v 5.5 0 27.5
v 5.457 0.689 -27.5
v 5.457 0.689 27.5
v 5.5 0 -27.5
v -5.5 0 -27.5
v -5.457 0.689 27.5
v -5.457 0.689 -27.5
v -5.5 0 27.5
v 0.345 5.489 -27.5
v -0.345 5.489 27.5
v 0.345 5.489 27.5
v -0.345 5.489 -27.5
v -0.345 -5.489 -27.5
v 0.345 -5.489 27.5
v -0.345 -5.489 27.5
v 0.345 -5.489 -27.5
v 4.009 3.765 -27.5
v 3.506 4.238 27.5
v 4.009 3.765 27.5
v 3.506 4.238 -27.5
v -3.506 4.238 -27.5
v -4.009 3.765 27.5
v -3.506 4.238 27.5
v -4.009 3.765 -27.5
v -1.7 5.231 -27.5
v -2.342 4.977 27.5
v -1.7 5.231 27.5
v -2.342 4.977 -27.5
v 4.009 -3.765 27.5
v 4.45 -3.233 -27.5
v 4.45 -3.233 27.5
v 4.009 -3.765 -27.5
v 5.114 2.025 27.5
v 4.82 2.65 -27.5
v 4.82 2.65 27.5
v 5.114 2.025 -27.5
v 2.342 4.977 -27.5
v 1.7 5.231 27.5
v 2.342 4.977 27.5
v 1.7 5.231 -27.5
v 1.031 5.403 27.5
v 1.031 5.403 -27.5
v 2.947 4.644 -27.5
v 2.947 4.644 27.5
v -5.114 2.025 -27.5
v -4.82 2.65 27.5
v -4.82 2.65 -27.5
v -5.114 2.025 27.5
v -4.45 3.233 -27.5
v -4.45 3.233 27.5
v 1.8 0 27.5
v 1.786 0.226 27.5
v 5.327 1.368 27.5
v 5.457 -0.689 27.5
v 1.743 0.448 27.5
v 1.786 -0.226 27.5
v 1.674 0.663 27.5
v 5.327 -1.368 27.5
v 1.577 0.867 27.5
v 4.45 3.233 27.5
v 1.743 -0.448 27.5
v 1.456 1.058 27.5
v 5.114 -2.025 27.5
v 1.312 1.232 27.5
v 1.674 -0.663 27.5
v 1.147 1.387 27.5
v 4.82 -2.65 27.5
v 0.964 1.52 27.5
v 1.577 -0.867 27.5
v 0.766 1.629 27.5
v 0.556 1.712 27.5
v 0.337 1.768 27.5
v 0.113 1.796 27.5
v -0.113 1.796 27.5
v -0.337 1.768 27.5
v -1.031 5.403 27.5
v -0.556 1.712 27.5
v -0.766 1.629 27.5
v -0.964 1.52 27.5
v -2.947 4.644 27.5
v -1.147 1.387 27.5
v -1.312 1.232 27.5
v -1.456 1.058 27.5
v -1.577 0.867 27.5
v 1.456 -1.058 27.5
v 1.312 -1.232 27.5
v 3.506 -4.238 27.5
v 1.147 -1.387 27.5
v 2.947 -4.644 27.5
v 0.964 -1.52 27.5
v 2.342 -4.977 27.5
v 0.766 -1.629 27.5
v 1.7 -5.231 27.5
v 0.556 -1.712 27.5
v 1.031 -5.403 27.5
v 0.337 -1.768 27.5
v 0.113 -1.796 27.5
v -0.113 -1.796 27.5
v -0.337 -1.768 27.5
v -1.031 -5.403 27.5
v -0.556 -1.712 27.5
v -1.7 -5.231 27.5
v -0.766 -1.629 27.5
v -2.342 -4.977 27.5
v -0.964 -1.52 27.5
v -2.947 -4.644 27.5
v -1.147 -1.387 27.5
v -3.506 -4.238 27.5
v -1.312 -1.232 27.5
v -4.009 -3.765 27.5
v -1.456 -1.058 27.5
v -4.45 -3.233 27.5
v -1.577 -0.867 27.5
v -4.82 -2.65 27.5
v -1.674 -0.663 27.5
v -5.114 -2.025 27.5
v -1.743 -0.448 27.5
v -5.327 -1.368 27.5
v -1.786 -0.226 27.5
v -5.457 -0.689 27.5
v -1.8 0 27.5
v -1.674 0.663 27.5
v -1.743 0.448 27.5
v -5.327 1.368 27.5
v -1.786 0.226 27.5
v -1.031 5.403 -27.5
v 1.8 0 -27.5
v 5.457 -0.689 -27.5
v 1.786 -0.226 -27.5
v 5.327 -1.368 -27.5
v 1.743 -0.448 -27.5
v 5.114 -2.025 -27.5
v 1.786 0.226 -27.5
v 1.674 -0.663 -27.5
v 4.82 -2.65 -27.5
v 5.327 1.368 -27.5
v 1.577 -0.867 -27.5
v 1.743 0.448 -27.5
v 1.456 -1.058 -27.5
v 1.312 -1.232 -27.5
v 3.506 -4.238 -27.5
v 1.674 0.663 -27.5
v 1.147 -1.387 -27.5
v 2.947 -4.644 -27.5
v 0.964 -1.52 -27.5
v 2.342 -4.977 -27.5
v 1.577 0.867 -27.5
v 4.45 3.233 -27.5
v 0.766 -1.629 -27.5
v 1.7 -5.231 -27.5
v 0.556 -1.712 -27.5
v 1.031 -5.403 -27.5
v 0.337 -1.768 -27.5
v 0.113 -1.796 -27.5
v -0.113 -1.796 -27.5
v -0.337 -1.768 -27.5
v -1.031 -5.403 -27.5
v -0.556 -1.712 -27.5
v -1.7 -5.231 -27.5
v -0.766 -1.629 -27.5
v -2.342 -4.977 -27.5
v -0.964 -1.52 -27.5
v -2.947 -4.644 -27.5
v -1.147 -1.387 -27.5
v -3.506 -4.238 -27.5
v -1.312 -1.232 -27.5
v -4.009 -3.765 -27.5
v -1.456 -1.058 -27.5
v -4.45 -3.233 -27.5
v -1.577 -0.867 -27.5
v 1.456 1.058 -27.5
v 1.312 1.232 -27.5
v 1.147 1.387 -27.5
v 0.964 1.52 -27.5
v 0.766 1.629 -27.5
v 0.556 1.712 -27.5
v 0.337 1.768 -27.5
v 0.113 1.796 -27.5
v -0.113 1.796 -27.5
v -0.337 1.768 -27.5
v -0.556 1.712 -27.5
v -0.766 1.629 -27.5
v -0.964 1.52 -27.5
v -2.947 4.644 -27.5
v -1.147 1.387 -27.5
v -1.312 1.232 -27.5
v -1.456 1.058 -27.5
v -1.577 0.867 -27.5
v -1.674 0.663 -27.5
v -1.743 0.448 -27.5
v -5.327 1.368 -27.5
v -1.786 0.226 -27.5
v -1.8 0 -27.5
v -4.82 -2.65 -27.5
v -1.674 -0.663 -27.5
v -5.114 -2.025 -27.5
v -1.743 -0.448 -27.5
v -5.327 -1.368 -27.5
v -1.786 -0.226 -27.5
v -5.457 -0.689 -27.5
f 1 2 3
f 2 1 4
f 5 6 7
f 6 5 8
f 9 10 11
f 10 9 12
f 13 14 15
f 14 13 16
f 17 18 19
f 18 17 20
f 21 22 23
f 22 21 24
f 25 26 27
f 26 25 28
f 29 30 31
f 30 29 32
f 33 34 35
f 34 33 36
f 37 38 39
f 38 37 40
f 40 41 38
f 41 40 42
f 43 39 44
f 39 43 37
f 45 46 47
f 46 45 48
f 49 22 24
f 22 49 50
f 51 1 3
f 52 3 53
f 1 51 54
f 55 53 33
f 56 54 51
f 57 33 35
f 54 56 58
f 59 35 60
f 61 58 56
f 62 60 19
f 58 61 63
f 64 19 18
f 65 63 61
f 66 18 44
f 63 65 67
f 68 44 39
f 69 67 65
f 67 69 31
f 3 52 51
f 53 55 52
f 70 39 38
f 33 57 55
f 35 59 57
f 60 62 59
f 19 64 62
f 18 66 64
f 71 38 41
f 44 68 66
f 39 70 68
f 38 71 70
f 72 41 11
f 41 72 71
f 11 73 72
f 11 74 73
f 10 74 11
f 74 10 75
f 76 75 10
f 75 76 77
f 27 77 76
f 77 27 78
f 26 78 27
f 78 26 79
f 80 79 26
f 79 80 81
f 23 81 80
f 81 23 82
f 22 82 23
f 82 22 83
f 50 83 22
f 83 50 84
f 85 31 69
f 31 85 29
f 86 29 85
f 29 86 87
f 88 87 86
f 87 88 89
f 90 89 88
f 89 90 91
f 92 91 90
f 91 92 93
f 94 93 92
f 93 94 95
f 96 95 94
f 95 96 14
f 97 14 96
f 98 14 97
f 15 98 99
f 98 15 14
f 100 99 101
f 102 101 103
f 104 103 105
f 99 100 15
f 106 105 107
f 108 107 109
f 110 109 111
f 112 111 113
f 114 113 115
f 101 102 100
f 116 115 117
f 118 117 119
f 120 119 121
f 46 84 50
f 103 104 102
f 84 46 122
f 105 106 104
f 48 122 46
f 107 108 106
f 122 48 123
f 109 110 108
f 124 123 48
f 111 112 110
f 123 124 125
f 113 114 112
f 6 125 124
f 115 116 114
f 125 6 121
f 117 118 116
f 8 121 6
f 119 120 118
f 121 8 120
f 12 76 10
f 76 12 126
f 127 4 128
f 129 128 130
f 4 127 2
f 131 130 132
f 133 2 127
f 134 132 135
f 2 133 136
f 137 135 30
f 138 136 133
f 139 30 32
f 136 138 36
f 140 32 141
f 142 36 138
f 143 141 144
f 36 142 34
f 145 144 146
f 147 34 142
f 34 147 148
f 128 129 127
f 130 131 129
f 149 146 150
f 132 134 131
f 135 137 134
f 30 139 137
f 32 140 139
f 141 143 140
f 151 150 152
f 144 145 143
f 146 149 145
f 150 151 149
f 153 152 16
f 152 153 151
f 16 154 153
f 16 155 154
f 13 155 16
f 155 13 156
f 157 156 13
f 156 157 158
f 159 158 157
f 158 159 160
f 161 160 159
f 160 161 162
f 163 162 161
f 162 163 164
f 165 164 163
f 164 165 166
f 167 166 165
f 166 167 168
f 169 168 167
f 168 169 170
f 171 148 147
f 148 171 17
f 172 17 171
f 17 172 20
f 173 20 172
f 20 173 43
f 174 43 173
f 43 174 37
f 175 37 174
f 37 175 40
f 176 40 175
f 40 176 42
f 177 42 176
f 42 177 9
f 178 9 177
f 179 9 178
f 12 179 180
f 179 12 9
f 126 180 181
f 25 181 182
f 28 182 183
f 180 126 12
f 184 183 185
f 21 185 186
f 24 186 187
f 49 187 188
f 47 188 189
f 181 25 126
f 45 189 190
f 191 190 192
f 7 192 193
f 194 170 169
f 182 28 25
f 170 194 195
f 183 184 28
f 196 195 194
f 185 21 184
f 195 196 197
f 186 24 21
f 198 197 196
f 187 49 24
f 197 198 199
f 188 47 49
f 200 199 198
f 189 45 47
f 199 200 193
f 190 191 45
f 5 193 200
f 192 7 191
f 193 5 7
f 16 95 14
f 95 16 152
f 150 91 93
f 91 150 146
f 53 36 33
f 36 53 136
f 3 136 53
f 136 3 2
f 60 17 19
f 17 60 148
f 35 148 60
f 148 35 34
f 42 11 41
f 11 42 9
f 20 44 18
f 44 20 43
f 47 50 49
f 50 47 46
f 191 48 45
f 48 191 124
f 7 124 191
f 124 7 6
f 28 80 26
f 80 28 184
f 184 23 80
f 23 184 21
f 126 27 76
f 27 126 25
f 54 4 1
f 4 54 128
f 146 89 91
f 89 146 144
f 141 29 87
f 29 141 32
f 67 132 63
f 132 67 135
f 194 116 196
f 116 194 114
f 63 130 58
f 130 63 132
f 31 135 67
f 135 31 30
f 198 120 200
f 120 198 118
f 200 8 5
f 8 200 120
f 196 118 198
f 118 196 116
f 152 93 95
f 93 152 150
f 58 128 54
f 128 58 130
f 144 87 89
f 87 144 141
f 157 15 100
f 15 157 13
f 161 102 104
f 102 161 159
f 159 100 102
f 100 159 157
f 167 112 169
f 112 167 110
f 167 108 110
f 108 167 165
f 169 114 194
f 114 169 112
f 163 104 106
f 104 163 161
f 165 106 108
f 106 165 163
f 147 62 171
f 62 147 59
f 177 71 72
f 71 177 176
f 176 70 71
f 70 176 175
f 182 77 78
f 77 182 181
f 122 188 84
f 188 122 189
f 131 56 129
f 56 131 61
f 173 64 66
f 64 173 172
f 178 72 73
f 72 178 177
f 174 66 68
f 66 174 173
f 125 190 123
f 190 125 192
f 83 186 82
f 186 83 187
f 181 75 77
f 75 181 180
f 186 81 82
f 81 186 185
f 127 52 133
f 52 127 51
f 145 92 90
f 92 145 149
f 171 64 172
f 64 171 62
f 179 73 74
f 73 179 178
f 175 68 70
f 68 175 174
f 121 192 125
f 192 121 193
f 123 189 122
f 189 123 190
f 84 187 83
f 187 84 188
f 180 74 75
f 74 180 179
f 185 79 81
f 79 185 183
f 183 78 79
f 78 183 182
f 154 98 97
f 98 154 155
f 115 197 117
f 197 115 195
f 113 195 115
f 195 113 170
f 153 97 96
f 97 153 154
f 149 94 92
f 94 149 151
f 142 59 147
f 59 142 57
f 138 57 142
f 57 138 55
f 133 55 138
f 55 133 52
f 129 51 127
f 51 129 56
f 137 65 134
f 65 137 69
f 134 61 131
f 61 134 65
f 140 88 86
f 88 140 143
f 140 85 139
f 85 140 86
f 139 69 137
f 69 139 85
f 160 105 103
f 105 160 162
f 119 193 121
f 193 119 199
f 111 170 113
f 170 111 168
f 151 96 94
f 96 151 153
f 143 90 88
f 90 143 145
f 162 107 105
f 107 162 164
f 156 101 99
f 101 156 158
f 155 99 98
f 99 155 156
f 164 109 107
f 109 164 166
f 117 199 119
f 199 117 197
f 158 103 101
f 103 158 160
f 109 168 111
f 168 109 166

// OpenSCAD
$fn = 50;


difference() {
	union() {
		translate(v = [0, 0, -27.5000000000]) {
			cylinder(h = 55, r = 5.5000000000);
		}
	}
	union() {
		translate(v = [0, 0, -100.0000000000]) {
			cylinder(h = 200, r = 1.8000000000);
		}
	}
}
